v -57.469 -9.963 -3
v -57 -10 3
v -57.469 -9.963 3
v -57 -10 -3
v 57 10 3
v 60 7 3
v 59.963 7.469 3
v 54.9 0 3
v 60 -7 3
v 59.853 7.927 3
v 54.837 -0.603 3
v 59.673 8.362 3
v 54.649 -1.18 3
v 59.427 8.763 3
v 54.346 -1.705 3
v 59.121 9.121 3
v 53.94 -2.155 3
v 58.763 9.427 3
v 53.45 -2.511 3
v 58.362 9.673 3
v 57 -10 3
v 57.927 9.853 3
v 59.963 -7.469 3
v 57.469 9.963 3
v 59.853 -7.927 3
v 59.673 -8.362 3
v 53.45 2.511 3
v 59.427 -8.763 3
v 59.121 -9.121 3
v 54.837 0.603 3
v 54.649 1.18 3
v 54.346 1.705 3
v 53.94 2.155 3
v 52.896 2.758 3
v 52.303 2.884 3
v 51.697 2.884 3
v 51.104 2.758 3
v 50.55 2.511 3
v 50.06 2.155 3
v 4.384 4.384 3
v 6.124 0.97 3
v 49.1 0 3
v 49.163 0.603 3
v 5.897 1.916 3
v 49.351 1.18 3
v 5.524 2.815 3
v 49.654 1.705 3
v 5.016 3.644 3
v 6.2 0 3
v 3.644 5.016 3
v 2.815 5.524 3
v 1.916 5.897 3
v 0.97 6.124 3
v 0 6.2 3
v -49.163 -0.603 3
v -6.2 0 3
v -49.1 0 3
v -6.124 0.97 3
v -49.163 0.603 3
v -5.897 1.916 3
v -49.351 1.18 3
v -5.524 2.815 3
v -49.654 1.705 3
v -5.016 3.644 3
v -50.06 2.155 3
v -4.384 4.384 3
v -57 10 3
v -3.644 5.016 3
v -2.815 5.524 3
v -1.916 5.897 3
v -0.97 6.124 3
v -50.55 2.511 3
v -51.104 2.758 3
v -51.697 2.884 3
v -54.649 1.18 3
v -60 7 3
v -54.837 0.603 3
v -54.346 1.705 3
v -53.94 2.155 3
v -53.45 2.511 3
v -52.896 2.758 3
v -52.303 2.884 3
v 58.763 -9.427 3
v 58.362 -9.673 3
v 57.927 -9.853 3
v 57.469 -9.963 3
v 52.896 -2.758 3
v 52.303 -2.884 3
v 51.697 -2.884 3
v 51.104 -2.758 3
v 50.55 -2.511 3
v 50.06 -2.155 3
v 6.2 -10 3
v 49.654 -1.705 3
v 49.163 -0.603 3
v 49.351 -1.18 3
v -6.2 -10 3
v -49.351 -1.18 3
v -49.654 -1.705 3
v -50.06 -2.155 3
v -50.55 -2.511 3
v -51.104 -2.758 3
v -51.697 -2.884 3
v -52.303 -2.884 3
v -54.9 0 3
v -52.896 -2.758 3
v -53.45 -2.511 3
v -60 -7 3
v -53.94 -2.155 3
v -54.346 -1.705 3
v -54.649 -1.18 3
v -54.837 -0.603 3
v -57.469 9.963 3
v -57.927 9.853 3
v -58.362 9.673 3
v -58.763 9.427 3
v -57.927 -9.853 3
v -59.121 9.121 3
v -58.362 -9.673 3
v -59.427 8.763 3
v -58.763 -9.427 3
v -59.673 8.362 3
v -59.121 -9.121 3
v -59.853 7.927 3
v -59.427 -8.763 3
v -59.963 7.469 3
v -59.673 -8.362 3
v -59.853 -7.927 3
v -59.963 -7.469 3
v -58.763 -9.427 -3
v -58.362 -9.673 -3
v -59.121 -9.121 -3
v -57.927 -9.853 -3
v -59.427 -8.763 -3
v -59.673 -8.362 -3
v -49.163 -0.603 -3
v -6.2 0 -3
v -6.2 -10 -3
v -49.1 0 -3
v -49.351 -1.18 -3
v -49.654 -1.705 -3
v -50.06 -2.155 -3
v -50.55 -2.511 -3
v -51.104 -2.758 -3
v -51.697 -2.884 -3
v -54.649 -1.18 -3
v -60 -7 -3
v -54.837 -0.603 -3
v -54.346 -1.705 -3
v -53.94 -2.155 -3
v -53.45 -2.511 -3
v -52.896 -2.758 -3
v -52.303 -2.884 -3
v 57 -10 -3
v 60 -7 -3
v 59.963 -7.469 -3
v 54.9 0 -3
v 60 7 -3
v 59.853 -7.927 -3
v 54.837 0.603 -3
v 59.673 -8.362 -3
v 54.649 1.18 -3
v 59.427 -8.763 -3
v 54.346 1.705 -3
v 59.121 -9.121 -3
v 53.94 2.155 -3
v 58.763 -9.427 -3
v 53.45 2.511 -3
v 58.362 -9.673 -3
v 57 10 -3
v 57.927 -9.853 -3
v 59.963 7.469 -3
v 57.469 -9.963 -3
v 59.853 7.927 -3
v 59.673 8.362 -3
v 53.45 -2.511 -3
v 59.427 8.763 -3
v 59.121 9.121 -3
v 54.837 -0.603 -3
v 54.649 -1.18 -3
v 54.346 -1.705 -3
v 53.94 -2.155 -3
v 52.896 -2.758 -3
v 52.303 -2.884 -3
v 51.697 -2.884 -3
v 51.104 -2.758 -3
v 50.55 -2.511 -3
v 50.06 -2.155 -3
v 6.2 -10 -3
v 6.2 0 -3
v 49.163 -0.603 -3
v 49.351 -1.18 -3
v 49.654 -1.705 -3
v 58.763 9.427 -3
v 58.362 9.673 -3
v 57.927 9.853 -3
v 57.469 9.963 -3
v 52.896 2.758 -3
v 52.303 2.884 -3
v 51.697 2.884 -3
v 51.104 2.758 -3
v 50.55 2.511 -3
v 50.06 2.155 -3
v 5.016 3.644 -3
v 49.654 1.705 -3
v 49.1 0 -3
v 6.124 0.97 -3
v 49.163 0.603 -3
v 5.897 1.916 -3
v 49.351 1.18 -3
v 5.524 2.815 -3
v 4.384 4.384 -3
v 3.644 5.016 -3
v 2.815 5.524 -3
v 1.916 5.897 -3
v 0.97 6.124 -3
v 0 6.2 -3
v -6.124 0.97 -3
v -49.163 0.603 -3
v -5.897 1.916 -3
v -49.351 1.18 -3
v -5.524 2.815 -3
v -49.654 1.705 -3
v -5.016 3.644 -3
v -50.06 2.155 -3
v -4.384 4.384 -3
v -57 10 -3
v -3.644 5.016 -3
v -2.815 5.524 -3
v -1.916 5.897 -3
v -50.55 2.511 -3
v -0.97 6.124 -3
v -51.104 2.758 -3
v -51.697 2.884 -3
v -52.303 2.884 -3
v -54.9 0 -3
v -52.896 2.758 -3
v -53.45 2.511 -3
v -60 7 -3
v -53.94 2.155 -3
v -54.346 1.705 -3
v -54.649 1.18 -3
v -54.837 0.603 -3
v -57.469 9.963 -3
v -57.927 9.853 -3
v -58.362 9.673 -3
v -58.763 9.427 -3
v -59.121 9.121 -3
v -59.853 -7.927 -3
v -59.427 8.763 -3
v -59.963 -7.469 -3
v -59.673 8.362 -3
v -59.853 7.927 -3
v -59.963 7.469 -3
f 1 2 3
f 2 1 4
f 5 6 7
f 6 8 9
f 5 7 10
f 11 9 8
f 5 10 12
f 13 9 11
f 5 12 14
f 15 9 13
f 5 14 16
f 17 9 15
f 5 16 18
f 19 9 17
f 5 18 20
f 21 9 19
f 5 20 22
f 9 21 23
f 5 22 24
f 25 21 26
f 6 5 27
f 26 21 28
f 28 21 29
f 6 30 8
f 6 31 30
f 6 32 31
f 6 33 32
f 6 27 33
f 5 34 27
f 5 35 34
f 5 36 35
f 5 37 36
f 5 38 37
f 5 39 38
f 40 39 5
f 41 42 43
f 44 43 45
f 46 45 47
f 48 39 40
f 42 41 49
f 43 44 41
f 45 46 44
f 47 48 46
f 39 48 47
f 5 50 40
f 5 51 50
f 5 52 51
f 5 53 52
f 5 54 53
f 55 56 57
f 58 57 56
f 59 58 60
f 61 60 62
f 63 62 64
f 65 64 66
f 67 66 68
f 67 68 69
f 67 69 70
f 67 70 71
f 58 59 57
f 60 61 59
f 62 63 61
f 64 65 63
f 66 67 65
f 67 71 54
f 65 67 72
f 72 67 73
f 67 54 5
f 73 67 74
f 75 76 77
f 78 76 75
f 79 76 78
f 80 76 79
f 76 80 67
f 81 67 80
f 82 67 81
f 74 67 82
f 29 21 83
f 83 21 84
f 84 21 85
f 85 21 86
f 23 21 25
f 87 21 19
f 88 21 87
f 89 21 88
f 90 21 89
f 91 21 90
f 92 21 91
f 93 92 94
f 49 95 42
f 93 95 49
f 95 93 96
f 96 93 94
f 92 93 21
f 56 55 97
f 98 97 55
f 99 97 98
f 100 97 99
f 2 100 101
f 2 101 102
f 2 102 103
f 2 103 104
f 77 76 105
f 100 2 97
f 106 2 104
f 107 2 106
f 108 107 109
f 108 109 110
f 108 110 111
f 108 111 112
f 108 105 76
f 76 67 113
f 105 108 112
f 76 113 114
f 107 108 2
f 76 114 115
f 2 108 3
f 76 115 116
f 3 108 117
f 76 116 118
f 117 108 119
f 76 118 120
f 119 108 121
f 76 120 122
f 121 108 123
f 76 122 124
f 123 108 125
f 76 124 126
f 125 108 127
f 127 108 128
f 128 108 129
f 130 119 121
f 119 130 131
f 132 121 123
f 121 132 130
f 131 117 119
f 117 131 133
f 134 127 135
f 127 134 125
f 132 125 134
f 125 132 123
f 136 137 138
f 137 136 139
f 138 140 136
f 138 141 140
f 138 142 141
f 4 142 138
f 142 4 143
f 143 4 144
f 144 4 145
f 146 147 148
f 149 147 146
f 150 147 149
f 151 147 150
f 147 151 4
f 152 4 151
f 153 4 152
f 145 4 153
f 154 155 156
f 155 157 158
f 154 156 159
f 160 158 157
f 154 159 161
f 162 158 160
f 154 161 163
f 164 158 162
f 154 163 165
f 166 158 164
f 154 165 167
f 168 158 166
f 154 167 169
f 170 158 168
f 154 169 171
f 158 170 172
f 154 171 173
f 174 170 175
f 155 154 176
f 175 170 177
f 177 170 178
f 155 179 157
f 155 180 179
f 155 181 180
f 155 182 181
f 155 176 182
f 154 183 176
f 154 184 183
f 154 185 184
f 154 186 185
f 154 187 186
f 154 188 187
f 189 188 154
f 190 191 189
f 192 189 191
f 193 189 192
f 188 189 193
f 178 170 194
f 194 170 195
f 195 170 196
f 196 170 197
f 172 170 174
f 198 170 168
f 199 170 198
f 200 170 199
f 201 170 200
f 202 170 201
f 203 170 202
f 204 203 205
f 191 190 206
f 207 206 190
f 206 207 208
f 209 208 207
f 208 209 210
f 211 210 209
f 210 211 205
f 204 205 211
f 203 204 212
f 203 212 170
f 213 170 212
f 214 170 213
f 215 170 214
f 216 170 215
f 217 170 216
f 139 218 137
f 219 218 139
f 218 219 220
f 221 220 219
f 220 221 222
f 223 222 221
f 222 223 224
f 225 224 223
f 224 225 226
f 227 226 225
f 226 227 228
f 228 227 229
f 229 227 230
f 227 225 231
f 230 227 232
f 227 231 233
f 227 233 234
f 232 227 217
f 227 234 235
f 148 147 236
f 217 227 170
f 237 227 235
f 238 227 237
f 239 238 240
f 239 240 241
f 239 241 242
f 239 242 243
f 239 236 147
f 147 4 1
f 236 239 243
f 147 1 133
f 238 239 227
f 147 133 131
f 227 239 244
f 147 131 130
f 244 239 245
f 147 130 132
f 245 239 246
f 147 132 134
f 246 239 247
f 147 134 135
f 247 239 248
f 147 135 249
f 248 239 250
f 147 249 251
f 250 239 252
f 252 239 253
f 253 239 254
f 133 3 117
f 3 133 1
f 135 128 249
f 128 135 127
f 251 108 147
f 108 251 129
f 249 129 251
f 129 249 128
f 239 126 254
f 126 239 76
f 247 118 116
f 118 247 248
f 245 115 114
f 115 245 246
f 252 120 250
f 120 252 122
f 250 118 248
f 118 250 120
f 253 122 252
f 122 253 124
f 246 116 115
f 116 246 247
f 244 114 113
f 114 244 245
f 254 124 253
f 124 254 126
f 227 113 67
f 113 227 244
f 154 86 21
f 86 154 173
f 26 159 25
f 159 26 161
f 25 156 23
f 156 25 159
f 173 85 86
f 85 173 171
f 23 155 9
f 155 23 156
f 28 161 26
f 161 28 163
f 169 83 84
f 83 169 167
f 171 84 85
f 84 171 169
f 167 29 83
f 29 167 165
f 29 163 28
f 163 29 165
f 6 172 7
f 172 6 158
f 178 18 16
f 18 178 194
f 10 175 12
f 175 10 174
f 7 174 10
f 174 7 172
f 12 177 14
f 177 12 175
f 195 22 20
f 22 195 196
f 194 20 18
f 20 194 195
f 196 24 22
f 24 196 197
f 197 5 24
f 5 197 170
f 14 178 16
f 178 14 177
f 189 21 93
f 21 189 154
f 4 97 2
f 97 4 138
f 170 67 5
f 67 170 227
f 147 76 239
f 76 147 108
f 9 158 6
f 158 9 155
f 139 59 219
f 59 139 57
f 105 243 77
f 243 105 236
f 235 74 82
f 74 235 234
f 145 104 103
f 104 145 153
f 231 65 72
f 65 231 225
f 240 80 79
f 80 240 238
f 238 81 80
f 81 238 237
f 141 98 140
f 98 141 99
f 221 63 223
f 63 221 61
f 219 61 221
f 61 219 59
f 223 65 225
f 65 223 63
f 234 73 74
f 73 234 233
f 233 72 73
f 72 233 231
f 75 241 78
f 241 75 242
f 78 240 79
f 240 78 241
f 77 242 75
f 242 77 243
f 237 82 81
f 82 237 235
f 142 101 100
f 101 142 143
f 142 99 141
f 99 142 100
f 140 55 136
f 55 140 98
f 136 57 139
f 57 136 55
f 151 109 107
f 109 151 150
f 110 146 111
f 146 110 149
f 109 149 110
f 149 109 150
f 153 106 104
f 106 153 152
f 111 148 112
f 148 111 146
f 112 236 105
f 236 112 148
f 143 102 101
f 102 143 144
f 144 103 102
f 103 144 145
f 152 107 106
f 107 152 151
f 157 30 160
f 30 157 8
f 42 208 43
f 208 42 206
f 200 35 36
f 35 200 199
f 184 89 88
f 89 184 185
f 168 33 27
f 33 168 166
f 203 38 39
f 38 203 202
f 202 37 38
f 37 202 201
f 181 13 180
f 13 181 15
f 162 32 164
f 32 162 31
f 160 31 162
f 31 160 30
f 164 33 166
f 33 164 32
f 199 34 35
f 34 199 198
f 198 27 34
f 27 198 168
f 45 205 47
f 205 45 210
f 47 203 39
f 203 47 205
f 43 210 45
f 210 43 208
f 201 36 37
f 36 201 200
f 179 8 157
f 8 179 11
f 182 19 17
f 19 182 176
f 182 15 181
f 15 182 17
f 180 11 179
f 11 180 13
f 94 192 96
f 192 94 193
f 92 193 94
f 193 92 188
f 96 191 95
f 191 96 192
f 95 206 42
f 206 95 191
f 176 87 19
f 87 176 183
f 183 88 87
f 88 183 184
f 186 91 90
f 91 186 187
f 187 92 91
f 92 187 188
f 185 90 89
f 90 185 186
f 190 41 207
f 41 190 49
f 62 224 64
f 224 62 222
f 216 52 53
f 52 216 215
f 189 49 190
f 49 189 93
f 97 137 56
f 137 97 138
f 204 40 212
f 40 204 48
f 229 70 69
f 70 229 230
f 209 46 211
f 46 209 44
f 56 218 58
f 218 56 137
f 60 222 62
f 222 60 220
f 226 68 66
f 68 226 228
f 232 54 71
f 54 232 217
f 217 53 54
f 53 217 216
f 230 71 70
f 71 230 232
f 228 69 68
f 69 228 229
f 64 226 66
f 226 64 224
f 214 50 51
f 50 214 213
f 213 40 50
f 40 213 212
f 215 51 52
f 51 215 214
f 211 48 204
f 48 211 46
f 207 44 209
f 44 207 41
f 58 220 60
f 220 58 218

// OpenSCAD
// Thing-O-Matic E3D hotend mount

use <MCAD/boxes.scad>;

module e3dMount(thickness=6,mountingHoleSep=104,mountDiam=12.4){
    union(){
        difference(){
            union(){
                roundedBox([120,20,thickness],3,true,center=false,$fn=40);
            } 
            // mounting holes for M5 screws
            for(i=[-1,1]){
                translate([mountingHoleSep/2*i,0,0]) cylinder(d=5.8,h=thickness+1,$fn=30,center=true);
            }
            // hotend mount
            hull(){
               mountDiam = 12.4;
              cylinder(d=mountDiam,h=thickness+1,center=true,$fn=40);  
              translate([0,-10,0]) cube([mountDiam,20,thickness+1],center=true);
            }
        }
    }
}

e3dMount();
